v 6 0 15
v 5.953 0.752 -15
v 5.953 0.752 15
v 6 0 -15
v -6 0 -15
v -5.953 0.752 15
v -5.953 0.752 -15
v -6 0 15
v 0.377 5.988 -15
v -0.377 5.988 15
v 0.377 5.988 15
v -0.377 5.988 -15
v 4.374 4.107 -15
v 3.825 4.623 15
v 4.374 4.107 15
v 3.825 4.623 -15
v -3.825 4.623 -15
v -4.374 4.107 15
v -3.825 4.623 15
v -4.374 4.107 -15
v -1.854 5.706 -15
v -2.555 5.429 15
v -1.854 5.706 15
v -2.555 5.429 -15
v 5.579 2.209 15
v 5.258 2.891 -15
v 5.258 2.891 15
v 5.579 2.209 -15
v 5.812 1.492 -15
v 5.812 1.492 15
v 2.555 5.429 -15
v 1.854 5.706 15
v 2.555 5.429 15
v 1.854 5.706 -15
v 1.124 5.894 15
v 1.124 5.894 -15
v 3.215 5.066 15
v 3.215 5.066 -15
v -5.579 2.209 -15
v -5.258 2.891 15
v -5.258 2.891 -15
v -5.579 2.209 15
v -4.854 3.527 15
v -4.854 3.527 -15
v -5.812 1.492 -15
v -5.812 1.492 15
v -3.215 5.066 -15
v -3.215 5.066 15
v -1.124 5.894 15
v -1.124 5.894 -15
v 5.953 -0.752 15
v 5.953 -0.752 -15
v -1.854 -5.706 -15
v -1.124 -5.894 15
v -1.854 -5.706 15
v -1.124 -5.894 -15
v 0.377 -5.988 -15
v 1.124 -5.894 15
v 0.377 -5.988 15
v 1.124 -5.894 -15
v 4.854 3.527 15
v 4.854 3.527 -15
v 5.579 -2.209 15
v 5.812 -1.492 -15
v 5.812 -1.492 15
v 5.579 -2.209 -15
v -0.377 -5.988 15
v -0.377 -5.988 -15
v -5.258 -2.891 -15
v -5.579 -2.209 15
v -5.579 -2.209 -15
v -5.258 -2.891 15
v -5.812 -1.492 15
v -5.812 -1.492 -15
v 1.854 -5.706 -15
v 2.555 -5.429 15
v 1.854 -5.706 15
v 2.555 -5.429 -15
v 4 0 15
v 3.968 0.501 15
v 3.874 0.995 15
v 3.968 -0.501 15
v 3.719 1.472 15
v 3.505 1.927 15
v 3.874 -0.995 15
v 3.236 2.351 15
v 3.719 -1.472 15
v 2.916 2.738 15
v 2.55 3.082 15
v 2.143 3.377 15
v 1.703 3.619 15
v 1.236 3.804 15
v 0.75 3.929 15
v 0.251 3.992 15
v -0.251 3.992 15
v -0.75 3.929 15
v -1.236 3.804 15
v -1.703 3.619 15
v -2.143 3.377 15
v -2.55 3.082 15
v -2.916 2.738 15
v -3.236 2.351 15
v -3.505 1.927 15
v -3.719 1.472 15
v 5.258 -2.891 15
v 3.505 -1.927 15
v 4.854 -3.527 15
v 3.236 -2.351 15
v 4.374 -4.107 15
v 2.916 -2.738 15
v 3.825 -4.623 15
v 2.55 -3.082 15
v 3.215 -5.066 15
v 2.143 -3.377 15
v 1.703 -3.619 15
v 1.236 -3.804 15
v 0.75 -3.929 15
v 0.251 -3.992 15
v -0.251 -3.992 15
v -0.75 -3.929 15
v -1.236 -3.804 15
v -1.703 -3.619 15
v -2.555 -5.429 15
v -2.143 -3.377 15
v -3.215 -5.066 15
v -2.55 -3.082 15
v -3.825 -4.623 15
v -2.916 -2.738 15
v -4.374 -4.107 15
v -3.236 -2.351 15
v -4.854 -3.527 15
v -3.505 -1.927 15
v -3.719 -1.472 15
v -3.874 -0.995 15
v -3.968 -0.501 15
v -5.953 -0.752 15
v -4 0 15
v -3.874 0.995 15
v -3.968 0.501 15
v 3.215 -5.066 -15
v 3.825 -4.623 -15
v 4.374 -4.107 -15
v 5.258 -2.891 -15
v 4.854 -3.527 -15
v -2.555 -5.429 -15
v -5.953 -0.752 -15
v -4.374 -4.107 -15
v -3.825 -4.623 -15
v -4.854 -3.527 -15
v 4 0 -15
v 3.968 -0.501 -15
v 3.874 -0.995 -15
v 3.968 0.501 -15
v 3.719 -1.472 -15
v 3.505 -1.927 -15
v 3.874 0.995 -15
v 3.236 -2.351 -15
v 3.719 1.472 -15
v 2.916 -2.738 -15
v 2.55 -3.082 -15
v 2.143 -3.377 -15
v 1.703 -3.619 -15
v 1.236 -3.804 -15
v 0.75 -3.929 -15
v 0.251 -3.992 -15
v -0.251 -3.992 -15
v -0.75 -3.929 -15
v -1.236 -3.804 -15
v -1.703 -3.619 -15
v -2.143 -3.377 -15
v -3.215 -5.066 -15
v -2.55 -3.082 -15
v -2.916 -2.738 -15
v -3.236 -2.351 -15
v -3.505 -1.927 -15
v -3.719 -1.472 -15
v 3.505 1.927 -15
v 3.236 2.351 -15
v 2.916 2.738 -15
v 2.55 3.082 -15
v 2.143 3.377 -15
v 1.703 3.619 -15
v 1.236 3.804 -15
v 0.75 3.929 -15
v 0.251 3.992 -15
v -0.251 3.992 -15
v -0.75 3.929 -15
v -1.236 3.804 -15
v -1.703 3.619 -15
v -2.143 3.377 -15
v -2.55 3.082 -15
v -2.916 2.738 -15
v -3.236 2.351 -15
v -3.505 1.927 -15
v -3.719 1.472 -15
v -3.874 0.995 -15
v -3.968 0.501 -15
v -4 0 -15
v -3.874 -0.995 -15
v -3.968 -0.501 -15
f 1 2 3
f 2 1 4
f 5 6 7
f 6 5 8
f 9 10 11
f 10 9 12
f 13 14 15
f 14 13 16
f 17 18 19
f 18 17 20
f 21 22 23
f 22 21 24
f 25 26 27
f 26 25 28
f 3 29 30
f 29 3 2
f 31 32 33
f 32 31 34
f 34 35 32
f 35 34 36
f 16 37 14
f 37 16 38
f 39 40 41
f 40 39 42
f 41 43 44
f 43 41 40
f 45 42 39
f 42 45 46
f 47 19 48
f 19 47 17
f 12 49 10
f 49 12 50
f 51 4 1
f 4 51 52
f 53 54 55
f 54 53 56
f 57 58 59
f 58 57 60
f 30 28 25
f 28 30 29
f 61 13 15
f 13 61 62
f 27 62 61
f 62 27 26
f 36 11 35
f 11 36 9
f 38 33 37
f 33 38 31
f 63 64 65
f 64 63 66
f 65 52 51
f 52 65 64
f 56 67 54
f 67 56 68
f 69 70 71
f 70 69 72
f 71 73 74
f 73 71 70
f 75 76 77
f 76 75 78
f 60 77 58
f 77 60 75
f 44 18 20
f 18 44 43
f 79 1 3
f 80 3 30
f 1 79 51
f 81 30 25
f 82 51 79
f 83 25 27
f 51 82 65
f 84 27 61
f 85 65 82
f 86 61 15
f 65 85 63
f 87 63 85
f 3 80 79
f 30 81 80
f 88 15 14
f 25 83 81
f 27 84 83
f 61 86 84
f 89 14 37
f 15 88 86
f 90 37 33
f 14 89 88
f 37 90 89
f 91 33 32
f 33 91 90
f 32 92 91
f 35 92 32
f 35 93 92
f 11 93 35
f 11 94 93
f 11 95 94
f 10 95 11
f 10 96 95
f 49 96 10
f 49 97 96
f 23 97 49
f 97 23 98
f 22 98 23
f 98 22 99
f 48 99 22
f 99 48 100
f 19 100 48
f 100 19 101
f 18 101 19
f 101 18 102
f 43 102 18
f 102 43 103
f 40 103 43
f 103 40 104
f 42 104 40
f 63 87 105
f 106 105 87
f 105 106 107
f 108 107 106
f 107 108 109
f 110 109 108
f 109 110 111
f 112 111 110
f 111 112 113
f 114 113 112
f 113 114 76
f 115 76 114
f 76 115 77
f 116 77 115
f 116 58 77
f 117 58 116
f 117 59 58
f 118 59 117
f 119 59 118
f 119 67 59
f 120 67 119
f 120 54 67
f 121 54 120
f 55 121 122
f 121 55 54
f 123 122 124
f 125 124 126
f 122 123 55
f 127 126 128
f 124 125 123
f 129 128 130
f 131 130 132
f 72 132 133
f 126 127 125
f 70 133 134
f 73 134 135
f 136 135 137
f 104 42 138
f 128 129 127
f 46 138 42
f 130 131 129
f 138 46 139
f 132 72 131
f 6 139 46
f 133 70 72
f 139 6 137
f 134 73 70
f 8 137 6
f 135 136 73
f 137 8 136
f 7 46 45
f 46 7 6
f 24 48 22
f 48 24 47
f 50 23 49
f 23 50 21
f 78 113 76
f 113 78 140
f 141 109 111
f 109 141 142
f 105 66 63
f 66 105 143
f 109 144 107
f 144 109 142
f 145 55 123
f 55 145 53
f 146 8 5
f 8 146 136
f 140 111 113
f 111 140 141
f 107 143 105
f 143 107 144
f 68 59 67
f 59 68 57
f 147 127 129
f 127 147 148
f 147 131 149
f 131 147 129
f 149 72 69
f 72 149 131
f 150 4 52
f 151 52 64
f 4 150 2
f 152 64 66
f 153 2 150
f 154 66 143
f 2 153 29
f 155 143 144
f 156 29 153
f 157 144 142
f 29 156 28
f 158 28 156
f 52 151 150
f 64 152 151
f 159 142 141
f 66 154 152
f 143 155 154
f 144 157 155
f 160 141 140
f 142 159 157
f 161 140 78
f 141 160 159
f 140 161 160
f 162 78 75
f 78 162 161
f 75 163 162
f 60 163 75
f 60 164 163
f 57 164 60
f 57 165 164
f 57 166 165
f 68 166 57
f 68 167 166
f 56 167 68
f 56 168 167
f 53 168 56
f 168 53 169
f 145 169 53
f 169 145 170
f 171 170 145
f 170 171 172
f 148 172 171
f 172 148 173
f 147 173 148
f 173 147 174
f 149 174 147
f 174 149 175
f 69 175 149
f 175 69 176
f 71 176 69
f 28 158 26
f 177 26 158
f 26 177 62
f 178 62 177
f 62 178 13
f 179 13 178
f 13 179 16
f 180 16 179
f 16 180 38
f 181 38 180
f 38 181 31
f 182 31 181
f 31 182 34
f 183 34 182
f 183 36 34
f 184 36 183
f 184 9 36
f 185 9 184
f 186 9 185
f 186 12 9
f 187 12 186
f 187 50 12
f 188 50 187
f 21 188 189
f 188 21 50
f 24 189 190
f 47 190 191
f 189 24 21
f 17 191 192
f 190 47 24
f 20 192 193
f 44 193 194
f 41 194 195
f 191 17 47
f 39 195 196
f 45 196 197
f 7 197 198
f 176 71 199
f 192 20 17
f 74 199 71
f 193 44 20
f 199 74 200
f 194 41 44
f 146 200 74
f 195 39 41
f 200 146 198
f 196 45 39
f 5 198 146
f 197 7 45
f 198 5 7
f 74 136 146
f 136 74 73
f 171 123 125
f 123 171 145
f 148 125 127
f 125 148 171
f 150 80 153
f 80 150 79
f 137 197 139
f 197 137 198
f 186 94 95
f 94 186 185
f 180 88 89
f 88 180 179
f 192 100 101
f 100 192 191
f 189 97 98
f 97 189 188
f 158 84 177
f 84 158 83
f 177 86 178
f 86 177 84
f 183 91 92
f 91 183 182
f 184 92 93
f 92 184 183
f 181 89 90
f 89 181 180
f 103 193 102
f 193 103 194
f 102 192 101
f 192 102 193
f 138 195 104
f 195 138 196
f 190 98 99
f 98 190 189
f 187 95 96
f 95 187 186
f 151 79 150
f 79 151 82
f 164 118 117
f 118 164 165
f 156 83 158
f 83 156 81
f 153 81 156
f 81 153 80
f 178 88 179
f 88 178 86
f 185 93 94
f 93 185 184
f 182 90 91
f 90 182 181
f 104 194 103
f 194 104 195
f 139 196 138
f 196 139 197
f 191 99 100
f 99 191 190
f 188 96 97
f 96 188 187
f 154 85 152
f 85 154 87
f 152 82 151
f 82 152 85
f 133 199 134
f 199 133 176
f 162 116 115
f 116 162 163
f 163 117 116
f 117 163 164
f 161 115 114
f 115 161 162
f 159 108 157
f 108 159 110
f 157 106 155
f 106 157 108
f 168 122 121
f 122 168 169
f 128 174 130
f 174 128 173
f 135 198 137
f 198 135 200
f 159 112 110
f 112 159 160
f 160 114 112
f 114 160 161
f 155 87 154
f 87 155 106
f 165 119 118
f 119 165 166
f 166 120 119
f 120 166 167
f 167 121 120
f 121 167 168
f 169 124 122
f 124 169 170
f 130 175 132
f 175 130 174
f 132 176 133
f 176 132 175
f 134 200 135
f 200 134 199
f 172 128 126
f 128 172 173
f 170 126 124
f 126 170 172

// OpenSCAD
$fn = 50;


difference() {
	union() {
		translate(v = [0, 0, -15.0000000000]) {
			cylinder(h = 30, r = 6.0000000000);
		}
	}
	union() {
		translate(v = [0, 0, -100.0000000000]) {
			cylinder(h = 200, r = 4.0000000000);
		}
	}
}
